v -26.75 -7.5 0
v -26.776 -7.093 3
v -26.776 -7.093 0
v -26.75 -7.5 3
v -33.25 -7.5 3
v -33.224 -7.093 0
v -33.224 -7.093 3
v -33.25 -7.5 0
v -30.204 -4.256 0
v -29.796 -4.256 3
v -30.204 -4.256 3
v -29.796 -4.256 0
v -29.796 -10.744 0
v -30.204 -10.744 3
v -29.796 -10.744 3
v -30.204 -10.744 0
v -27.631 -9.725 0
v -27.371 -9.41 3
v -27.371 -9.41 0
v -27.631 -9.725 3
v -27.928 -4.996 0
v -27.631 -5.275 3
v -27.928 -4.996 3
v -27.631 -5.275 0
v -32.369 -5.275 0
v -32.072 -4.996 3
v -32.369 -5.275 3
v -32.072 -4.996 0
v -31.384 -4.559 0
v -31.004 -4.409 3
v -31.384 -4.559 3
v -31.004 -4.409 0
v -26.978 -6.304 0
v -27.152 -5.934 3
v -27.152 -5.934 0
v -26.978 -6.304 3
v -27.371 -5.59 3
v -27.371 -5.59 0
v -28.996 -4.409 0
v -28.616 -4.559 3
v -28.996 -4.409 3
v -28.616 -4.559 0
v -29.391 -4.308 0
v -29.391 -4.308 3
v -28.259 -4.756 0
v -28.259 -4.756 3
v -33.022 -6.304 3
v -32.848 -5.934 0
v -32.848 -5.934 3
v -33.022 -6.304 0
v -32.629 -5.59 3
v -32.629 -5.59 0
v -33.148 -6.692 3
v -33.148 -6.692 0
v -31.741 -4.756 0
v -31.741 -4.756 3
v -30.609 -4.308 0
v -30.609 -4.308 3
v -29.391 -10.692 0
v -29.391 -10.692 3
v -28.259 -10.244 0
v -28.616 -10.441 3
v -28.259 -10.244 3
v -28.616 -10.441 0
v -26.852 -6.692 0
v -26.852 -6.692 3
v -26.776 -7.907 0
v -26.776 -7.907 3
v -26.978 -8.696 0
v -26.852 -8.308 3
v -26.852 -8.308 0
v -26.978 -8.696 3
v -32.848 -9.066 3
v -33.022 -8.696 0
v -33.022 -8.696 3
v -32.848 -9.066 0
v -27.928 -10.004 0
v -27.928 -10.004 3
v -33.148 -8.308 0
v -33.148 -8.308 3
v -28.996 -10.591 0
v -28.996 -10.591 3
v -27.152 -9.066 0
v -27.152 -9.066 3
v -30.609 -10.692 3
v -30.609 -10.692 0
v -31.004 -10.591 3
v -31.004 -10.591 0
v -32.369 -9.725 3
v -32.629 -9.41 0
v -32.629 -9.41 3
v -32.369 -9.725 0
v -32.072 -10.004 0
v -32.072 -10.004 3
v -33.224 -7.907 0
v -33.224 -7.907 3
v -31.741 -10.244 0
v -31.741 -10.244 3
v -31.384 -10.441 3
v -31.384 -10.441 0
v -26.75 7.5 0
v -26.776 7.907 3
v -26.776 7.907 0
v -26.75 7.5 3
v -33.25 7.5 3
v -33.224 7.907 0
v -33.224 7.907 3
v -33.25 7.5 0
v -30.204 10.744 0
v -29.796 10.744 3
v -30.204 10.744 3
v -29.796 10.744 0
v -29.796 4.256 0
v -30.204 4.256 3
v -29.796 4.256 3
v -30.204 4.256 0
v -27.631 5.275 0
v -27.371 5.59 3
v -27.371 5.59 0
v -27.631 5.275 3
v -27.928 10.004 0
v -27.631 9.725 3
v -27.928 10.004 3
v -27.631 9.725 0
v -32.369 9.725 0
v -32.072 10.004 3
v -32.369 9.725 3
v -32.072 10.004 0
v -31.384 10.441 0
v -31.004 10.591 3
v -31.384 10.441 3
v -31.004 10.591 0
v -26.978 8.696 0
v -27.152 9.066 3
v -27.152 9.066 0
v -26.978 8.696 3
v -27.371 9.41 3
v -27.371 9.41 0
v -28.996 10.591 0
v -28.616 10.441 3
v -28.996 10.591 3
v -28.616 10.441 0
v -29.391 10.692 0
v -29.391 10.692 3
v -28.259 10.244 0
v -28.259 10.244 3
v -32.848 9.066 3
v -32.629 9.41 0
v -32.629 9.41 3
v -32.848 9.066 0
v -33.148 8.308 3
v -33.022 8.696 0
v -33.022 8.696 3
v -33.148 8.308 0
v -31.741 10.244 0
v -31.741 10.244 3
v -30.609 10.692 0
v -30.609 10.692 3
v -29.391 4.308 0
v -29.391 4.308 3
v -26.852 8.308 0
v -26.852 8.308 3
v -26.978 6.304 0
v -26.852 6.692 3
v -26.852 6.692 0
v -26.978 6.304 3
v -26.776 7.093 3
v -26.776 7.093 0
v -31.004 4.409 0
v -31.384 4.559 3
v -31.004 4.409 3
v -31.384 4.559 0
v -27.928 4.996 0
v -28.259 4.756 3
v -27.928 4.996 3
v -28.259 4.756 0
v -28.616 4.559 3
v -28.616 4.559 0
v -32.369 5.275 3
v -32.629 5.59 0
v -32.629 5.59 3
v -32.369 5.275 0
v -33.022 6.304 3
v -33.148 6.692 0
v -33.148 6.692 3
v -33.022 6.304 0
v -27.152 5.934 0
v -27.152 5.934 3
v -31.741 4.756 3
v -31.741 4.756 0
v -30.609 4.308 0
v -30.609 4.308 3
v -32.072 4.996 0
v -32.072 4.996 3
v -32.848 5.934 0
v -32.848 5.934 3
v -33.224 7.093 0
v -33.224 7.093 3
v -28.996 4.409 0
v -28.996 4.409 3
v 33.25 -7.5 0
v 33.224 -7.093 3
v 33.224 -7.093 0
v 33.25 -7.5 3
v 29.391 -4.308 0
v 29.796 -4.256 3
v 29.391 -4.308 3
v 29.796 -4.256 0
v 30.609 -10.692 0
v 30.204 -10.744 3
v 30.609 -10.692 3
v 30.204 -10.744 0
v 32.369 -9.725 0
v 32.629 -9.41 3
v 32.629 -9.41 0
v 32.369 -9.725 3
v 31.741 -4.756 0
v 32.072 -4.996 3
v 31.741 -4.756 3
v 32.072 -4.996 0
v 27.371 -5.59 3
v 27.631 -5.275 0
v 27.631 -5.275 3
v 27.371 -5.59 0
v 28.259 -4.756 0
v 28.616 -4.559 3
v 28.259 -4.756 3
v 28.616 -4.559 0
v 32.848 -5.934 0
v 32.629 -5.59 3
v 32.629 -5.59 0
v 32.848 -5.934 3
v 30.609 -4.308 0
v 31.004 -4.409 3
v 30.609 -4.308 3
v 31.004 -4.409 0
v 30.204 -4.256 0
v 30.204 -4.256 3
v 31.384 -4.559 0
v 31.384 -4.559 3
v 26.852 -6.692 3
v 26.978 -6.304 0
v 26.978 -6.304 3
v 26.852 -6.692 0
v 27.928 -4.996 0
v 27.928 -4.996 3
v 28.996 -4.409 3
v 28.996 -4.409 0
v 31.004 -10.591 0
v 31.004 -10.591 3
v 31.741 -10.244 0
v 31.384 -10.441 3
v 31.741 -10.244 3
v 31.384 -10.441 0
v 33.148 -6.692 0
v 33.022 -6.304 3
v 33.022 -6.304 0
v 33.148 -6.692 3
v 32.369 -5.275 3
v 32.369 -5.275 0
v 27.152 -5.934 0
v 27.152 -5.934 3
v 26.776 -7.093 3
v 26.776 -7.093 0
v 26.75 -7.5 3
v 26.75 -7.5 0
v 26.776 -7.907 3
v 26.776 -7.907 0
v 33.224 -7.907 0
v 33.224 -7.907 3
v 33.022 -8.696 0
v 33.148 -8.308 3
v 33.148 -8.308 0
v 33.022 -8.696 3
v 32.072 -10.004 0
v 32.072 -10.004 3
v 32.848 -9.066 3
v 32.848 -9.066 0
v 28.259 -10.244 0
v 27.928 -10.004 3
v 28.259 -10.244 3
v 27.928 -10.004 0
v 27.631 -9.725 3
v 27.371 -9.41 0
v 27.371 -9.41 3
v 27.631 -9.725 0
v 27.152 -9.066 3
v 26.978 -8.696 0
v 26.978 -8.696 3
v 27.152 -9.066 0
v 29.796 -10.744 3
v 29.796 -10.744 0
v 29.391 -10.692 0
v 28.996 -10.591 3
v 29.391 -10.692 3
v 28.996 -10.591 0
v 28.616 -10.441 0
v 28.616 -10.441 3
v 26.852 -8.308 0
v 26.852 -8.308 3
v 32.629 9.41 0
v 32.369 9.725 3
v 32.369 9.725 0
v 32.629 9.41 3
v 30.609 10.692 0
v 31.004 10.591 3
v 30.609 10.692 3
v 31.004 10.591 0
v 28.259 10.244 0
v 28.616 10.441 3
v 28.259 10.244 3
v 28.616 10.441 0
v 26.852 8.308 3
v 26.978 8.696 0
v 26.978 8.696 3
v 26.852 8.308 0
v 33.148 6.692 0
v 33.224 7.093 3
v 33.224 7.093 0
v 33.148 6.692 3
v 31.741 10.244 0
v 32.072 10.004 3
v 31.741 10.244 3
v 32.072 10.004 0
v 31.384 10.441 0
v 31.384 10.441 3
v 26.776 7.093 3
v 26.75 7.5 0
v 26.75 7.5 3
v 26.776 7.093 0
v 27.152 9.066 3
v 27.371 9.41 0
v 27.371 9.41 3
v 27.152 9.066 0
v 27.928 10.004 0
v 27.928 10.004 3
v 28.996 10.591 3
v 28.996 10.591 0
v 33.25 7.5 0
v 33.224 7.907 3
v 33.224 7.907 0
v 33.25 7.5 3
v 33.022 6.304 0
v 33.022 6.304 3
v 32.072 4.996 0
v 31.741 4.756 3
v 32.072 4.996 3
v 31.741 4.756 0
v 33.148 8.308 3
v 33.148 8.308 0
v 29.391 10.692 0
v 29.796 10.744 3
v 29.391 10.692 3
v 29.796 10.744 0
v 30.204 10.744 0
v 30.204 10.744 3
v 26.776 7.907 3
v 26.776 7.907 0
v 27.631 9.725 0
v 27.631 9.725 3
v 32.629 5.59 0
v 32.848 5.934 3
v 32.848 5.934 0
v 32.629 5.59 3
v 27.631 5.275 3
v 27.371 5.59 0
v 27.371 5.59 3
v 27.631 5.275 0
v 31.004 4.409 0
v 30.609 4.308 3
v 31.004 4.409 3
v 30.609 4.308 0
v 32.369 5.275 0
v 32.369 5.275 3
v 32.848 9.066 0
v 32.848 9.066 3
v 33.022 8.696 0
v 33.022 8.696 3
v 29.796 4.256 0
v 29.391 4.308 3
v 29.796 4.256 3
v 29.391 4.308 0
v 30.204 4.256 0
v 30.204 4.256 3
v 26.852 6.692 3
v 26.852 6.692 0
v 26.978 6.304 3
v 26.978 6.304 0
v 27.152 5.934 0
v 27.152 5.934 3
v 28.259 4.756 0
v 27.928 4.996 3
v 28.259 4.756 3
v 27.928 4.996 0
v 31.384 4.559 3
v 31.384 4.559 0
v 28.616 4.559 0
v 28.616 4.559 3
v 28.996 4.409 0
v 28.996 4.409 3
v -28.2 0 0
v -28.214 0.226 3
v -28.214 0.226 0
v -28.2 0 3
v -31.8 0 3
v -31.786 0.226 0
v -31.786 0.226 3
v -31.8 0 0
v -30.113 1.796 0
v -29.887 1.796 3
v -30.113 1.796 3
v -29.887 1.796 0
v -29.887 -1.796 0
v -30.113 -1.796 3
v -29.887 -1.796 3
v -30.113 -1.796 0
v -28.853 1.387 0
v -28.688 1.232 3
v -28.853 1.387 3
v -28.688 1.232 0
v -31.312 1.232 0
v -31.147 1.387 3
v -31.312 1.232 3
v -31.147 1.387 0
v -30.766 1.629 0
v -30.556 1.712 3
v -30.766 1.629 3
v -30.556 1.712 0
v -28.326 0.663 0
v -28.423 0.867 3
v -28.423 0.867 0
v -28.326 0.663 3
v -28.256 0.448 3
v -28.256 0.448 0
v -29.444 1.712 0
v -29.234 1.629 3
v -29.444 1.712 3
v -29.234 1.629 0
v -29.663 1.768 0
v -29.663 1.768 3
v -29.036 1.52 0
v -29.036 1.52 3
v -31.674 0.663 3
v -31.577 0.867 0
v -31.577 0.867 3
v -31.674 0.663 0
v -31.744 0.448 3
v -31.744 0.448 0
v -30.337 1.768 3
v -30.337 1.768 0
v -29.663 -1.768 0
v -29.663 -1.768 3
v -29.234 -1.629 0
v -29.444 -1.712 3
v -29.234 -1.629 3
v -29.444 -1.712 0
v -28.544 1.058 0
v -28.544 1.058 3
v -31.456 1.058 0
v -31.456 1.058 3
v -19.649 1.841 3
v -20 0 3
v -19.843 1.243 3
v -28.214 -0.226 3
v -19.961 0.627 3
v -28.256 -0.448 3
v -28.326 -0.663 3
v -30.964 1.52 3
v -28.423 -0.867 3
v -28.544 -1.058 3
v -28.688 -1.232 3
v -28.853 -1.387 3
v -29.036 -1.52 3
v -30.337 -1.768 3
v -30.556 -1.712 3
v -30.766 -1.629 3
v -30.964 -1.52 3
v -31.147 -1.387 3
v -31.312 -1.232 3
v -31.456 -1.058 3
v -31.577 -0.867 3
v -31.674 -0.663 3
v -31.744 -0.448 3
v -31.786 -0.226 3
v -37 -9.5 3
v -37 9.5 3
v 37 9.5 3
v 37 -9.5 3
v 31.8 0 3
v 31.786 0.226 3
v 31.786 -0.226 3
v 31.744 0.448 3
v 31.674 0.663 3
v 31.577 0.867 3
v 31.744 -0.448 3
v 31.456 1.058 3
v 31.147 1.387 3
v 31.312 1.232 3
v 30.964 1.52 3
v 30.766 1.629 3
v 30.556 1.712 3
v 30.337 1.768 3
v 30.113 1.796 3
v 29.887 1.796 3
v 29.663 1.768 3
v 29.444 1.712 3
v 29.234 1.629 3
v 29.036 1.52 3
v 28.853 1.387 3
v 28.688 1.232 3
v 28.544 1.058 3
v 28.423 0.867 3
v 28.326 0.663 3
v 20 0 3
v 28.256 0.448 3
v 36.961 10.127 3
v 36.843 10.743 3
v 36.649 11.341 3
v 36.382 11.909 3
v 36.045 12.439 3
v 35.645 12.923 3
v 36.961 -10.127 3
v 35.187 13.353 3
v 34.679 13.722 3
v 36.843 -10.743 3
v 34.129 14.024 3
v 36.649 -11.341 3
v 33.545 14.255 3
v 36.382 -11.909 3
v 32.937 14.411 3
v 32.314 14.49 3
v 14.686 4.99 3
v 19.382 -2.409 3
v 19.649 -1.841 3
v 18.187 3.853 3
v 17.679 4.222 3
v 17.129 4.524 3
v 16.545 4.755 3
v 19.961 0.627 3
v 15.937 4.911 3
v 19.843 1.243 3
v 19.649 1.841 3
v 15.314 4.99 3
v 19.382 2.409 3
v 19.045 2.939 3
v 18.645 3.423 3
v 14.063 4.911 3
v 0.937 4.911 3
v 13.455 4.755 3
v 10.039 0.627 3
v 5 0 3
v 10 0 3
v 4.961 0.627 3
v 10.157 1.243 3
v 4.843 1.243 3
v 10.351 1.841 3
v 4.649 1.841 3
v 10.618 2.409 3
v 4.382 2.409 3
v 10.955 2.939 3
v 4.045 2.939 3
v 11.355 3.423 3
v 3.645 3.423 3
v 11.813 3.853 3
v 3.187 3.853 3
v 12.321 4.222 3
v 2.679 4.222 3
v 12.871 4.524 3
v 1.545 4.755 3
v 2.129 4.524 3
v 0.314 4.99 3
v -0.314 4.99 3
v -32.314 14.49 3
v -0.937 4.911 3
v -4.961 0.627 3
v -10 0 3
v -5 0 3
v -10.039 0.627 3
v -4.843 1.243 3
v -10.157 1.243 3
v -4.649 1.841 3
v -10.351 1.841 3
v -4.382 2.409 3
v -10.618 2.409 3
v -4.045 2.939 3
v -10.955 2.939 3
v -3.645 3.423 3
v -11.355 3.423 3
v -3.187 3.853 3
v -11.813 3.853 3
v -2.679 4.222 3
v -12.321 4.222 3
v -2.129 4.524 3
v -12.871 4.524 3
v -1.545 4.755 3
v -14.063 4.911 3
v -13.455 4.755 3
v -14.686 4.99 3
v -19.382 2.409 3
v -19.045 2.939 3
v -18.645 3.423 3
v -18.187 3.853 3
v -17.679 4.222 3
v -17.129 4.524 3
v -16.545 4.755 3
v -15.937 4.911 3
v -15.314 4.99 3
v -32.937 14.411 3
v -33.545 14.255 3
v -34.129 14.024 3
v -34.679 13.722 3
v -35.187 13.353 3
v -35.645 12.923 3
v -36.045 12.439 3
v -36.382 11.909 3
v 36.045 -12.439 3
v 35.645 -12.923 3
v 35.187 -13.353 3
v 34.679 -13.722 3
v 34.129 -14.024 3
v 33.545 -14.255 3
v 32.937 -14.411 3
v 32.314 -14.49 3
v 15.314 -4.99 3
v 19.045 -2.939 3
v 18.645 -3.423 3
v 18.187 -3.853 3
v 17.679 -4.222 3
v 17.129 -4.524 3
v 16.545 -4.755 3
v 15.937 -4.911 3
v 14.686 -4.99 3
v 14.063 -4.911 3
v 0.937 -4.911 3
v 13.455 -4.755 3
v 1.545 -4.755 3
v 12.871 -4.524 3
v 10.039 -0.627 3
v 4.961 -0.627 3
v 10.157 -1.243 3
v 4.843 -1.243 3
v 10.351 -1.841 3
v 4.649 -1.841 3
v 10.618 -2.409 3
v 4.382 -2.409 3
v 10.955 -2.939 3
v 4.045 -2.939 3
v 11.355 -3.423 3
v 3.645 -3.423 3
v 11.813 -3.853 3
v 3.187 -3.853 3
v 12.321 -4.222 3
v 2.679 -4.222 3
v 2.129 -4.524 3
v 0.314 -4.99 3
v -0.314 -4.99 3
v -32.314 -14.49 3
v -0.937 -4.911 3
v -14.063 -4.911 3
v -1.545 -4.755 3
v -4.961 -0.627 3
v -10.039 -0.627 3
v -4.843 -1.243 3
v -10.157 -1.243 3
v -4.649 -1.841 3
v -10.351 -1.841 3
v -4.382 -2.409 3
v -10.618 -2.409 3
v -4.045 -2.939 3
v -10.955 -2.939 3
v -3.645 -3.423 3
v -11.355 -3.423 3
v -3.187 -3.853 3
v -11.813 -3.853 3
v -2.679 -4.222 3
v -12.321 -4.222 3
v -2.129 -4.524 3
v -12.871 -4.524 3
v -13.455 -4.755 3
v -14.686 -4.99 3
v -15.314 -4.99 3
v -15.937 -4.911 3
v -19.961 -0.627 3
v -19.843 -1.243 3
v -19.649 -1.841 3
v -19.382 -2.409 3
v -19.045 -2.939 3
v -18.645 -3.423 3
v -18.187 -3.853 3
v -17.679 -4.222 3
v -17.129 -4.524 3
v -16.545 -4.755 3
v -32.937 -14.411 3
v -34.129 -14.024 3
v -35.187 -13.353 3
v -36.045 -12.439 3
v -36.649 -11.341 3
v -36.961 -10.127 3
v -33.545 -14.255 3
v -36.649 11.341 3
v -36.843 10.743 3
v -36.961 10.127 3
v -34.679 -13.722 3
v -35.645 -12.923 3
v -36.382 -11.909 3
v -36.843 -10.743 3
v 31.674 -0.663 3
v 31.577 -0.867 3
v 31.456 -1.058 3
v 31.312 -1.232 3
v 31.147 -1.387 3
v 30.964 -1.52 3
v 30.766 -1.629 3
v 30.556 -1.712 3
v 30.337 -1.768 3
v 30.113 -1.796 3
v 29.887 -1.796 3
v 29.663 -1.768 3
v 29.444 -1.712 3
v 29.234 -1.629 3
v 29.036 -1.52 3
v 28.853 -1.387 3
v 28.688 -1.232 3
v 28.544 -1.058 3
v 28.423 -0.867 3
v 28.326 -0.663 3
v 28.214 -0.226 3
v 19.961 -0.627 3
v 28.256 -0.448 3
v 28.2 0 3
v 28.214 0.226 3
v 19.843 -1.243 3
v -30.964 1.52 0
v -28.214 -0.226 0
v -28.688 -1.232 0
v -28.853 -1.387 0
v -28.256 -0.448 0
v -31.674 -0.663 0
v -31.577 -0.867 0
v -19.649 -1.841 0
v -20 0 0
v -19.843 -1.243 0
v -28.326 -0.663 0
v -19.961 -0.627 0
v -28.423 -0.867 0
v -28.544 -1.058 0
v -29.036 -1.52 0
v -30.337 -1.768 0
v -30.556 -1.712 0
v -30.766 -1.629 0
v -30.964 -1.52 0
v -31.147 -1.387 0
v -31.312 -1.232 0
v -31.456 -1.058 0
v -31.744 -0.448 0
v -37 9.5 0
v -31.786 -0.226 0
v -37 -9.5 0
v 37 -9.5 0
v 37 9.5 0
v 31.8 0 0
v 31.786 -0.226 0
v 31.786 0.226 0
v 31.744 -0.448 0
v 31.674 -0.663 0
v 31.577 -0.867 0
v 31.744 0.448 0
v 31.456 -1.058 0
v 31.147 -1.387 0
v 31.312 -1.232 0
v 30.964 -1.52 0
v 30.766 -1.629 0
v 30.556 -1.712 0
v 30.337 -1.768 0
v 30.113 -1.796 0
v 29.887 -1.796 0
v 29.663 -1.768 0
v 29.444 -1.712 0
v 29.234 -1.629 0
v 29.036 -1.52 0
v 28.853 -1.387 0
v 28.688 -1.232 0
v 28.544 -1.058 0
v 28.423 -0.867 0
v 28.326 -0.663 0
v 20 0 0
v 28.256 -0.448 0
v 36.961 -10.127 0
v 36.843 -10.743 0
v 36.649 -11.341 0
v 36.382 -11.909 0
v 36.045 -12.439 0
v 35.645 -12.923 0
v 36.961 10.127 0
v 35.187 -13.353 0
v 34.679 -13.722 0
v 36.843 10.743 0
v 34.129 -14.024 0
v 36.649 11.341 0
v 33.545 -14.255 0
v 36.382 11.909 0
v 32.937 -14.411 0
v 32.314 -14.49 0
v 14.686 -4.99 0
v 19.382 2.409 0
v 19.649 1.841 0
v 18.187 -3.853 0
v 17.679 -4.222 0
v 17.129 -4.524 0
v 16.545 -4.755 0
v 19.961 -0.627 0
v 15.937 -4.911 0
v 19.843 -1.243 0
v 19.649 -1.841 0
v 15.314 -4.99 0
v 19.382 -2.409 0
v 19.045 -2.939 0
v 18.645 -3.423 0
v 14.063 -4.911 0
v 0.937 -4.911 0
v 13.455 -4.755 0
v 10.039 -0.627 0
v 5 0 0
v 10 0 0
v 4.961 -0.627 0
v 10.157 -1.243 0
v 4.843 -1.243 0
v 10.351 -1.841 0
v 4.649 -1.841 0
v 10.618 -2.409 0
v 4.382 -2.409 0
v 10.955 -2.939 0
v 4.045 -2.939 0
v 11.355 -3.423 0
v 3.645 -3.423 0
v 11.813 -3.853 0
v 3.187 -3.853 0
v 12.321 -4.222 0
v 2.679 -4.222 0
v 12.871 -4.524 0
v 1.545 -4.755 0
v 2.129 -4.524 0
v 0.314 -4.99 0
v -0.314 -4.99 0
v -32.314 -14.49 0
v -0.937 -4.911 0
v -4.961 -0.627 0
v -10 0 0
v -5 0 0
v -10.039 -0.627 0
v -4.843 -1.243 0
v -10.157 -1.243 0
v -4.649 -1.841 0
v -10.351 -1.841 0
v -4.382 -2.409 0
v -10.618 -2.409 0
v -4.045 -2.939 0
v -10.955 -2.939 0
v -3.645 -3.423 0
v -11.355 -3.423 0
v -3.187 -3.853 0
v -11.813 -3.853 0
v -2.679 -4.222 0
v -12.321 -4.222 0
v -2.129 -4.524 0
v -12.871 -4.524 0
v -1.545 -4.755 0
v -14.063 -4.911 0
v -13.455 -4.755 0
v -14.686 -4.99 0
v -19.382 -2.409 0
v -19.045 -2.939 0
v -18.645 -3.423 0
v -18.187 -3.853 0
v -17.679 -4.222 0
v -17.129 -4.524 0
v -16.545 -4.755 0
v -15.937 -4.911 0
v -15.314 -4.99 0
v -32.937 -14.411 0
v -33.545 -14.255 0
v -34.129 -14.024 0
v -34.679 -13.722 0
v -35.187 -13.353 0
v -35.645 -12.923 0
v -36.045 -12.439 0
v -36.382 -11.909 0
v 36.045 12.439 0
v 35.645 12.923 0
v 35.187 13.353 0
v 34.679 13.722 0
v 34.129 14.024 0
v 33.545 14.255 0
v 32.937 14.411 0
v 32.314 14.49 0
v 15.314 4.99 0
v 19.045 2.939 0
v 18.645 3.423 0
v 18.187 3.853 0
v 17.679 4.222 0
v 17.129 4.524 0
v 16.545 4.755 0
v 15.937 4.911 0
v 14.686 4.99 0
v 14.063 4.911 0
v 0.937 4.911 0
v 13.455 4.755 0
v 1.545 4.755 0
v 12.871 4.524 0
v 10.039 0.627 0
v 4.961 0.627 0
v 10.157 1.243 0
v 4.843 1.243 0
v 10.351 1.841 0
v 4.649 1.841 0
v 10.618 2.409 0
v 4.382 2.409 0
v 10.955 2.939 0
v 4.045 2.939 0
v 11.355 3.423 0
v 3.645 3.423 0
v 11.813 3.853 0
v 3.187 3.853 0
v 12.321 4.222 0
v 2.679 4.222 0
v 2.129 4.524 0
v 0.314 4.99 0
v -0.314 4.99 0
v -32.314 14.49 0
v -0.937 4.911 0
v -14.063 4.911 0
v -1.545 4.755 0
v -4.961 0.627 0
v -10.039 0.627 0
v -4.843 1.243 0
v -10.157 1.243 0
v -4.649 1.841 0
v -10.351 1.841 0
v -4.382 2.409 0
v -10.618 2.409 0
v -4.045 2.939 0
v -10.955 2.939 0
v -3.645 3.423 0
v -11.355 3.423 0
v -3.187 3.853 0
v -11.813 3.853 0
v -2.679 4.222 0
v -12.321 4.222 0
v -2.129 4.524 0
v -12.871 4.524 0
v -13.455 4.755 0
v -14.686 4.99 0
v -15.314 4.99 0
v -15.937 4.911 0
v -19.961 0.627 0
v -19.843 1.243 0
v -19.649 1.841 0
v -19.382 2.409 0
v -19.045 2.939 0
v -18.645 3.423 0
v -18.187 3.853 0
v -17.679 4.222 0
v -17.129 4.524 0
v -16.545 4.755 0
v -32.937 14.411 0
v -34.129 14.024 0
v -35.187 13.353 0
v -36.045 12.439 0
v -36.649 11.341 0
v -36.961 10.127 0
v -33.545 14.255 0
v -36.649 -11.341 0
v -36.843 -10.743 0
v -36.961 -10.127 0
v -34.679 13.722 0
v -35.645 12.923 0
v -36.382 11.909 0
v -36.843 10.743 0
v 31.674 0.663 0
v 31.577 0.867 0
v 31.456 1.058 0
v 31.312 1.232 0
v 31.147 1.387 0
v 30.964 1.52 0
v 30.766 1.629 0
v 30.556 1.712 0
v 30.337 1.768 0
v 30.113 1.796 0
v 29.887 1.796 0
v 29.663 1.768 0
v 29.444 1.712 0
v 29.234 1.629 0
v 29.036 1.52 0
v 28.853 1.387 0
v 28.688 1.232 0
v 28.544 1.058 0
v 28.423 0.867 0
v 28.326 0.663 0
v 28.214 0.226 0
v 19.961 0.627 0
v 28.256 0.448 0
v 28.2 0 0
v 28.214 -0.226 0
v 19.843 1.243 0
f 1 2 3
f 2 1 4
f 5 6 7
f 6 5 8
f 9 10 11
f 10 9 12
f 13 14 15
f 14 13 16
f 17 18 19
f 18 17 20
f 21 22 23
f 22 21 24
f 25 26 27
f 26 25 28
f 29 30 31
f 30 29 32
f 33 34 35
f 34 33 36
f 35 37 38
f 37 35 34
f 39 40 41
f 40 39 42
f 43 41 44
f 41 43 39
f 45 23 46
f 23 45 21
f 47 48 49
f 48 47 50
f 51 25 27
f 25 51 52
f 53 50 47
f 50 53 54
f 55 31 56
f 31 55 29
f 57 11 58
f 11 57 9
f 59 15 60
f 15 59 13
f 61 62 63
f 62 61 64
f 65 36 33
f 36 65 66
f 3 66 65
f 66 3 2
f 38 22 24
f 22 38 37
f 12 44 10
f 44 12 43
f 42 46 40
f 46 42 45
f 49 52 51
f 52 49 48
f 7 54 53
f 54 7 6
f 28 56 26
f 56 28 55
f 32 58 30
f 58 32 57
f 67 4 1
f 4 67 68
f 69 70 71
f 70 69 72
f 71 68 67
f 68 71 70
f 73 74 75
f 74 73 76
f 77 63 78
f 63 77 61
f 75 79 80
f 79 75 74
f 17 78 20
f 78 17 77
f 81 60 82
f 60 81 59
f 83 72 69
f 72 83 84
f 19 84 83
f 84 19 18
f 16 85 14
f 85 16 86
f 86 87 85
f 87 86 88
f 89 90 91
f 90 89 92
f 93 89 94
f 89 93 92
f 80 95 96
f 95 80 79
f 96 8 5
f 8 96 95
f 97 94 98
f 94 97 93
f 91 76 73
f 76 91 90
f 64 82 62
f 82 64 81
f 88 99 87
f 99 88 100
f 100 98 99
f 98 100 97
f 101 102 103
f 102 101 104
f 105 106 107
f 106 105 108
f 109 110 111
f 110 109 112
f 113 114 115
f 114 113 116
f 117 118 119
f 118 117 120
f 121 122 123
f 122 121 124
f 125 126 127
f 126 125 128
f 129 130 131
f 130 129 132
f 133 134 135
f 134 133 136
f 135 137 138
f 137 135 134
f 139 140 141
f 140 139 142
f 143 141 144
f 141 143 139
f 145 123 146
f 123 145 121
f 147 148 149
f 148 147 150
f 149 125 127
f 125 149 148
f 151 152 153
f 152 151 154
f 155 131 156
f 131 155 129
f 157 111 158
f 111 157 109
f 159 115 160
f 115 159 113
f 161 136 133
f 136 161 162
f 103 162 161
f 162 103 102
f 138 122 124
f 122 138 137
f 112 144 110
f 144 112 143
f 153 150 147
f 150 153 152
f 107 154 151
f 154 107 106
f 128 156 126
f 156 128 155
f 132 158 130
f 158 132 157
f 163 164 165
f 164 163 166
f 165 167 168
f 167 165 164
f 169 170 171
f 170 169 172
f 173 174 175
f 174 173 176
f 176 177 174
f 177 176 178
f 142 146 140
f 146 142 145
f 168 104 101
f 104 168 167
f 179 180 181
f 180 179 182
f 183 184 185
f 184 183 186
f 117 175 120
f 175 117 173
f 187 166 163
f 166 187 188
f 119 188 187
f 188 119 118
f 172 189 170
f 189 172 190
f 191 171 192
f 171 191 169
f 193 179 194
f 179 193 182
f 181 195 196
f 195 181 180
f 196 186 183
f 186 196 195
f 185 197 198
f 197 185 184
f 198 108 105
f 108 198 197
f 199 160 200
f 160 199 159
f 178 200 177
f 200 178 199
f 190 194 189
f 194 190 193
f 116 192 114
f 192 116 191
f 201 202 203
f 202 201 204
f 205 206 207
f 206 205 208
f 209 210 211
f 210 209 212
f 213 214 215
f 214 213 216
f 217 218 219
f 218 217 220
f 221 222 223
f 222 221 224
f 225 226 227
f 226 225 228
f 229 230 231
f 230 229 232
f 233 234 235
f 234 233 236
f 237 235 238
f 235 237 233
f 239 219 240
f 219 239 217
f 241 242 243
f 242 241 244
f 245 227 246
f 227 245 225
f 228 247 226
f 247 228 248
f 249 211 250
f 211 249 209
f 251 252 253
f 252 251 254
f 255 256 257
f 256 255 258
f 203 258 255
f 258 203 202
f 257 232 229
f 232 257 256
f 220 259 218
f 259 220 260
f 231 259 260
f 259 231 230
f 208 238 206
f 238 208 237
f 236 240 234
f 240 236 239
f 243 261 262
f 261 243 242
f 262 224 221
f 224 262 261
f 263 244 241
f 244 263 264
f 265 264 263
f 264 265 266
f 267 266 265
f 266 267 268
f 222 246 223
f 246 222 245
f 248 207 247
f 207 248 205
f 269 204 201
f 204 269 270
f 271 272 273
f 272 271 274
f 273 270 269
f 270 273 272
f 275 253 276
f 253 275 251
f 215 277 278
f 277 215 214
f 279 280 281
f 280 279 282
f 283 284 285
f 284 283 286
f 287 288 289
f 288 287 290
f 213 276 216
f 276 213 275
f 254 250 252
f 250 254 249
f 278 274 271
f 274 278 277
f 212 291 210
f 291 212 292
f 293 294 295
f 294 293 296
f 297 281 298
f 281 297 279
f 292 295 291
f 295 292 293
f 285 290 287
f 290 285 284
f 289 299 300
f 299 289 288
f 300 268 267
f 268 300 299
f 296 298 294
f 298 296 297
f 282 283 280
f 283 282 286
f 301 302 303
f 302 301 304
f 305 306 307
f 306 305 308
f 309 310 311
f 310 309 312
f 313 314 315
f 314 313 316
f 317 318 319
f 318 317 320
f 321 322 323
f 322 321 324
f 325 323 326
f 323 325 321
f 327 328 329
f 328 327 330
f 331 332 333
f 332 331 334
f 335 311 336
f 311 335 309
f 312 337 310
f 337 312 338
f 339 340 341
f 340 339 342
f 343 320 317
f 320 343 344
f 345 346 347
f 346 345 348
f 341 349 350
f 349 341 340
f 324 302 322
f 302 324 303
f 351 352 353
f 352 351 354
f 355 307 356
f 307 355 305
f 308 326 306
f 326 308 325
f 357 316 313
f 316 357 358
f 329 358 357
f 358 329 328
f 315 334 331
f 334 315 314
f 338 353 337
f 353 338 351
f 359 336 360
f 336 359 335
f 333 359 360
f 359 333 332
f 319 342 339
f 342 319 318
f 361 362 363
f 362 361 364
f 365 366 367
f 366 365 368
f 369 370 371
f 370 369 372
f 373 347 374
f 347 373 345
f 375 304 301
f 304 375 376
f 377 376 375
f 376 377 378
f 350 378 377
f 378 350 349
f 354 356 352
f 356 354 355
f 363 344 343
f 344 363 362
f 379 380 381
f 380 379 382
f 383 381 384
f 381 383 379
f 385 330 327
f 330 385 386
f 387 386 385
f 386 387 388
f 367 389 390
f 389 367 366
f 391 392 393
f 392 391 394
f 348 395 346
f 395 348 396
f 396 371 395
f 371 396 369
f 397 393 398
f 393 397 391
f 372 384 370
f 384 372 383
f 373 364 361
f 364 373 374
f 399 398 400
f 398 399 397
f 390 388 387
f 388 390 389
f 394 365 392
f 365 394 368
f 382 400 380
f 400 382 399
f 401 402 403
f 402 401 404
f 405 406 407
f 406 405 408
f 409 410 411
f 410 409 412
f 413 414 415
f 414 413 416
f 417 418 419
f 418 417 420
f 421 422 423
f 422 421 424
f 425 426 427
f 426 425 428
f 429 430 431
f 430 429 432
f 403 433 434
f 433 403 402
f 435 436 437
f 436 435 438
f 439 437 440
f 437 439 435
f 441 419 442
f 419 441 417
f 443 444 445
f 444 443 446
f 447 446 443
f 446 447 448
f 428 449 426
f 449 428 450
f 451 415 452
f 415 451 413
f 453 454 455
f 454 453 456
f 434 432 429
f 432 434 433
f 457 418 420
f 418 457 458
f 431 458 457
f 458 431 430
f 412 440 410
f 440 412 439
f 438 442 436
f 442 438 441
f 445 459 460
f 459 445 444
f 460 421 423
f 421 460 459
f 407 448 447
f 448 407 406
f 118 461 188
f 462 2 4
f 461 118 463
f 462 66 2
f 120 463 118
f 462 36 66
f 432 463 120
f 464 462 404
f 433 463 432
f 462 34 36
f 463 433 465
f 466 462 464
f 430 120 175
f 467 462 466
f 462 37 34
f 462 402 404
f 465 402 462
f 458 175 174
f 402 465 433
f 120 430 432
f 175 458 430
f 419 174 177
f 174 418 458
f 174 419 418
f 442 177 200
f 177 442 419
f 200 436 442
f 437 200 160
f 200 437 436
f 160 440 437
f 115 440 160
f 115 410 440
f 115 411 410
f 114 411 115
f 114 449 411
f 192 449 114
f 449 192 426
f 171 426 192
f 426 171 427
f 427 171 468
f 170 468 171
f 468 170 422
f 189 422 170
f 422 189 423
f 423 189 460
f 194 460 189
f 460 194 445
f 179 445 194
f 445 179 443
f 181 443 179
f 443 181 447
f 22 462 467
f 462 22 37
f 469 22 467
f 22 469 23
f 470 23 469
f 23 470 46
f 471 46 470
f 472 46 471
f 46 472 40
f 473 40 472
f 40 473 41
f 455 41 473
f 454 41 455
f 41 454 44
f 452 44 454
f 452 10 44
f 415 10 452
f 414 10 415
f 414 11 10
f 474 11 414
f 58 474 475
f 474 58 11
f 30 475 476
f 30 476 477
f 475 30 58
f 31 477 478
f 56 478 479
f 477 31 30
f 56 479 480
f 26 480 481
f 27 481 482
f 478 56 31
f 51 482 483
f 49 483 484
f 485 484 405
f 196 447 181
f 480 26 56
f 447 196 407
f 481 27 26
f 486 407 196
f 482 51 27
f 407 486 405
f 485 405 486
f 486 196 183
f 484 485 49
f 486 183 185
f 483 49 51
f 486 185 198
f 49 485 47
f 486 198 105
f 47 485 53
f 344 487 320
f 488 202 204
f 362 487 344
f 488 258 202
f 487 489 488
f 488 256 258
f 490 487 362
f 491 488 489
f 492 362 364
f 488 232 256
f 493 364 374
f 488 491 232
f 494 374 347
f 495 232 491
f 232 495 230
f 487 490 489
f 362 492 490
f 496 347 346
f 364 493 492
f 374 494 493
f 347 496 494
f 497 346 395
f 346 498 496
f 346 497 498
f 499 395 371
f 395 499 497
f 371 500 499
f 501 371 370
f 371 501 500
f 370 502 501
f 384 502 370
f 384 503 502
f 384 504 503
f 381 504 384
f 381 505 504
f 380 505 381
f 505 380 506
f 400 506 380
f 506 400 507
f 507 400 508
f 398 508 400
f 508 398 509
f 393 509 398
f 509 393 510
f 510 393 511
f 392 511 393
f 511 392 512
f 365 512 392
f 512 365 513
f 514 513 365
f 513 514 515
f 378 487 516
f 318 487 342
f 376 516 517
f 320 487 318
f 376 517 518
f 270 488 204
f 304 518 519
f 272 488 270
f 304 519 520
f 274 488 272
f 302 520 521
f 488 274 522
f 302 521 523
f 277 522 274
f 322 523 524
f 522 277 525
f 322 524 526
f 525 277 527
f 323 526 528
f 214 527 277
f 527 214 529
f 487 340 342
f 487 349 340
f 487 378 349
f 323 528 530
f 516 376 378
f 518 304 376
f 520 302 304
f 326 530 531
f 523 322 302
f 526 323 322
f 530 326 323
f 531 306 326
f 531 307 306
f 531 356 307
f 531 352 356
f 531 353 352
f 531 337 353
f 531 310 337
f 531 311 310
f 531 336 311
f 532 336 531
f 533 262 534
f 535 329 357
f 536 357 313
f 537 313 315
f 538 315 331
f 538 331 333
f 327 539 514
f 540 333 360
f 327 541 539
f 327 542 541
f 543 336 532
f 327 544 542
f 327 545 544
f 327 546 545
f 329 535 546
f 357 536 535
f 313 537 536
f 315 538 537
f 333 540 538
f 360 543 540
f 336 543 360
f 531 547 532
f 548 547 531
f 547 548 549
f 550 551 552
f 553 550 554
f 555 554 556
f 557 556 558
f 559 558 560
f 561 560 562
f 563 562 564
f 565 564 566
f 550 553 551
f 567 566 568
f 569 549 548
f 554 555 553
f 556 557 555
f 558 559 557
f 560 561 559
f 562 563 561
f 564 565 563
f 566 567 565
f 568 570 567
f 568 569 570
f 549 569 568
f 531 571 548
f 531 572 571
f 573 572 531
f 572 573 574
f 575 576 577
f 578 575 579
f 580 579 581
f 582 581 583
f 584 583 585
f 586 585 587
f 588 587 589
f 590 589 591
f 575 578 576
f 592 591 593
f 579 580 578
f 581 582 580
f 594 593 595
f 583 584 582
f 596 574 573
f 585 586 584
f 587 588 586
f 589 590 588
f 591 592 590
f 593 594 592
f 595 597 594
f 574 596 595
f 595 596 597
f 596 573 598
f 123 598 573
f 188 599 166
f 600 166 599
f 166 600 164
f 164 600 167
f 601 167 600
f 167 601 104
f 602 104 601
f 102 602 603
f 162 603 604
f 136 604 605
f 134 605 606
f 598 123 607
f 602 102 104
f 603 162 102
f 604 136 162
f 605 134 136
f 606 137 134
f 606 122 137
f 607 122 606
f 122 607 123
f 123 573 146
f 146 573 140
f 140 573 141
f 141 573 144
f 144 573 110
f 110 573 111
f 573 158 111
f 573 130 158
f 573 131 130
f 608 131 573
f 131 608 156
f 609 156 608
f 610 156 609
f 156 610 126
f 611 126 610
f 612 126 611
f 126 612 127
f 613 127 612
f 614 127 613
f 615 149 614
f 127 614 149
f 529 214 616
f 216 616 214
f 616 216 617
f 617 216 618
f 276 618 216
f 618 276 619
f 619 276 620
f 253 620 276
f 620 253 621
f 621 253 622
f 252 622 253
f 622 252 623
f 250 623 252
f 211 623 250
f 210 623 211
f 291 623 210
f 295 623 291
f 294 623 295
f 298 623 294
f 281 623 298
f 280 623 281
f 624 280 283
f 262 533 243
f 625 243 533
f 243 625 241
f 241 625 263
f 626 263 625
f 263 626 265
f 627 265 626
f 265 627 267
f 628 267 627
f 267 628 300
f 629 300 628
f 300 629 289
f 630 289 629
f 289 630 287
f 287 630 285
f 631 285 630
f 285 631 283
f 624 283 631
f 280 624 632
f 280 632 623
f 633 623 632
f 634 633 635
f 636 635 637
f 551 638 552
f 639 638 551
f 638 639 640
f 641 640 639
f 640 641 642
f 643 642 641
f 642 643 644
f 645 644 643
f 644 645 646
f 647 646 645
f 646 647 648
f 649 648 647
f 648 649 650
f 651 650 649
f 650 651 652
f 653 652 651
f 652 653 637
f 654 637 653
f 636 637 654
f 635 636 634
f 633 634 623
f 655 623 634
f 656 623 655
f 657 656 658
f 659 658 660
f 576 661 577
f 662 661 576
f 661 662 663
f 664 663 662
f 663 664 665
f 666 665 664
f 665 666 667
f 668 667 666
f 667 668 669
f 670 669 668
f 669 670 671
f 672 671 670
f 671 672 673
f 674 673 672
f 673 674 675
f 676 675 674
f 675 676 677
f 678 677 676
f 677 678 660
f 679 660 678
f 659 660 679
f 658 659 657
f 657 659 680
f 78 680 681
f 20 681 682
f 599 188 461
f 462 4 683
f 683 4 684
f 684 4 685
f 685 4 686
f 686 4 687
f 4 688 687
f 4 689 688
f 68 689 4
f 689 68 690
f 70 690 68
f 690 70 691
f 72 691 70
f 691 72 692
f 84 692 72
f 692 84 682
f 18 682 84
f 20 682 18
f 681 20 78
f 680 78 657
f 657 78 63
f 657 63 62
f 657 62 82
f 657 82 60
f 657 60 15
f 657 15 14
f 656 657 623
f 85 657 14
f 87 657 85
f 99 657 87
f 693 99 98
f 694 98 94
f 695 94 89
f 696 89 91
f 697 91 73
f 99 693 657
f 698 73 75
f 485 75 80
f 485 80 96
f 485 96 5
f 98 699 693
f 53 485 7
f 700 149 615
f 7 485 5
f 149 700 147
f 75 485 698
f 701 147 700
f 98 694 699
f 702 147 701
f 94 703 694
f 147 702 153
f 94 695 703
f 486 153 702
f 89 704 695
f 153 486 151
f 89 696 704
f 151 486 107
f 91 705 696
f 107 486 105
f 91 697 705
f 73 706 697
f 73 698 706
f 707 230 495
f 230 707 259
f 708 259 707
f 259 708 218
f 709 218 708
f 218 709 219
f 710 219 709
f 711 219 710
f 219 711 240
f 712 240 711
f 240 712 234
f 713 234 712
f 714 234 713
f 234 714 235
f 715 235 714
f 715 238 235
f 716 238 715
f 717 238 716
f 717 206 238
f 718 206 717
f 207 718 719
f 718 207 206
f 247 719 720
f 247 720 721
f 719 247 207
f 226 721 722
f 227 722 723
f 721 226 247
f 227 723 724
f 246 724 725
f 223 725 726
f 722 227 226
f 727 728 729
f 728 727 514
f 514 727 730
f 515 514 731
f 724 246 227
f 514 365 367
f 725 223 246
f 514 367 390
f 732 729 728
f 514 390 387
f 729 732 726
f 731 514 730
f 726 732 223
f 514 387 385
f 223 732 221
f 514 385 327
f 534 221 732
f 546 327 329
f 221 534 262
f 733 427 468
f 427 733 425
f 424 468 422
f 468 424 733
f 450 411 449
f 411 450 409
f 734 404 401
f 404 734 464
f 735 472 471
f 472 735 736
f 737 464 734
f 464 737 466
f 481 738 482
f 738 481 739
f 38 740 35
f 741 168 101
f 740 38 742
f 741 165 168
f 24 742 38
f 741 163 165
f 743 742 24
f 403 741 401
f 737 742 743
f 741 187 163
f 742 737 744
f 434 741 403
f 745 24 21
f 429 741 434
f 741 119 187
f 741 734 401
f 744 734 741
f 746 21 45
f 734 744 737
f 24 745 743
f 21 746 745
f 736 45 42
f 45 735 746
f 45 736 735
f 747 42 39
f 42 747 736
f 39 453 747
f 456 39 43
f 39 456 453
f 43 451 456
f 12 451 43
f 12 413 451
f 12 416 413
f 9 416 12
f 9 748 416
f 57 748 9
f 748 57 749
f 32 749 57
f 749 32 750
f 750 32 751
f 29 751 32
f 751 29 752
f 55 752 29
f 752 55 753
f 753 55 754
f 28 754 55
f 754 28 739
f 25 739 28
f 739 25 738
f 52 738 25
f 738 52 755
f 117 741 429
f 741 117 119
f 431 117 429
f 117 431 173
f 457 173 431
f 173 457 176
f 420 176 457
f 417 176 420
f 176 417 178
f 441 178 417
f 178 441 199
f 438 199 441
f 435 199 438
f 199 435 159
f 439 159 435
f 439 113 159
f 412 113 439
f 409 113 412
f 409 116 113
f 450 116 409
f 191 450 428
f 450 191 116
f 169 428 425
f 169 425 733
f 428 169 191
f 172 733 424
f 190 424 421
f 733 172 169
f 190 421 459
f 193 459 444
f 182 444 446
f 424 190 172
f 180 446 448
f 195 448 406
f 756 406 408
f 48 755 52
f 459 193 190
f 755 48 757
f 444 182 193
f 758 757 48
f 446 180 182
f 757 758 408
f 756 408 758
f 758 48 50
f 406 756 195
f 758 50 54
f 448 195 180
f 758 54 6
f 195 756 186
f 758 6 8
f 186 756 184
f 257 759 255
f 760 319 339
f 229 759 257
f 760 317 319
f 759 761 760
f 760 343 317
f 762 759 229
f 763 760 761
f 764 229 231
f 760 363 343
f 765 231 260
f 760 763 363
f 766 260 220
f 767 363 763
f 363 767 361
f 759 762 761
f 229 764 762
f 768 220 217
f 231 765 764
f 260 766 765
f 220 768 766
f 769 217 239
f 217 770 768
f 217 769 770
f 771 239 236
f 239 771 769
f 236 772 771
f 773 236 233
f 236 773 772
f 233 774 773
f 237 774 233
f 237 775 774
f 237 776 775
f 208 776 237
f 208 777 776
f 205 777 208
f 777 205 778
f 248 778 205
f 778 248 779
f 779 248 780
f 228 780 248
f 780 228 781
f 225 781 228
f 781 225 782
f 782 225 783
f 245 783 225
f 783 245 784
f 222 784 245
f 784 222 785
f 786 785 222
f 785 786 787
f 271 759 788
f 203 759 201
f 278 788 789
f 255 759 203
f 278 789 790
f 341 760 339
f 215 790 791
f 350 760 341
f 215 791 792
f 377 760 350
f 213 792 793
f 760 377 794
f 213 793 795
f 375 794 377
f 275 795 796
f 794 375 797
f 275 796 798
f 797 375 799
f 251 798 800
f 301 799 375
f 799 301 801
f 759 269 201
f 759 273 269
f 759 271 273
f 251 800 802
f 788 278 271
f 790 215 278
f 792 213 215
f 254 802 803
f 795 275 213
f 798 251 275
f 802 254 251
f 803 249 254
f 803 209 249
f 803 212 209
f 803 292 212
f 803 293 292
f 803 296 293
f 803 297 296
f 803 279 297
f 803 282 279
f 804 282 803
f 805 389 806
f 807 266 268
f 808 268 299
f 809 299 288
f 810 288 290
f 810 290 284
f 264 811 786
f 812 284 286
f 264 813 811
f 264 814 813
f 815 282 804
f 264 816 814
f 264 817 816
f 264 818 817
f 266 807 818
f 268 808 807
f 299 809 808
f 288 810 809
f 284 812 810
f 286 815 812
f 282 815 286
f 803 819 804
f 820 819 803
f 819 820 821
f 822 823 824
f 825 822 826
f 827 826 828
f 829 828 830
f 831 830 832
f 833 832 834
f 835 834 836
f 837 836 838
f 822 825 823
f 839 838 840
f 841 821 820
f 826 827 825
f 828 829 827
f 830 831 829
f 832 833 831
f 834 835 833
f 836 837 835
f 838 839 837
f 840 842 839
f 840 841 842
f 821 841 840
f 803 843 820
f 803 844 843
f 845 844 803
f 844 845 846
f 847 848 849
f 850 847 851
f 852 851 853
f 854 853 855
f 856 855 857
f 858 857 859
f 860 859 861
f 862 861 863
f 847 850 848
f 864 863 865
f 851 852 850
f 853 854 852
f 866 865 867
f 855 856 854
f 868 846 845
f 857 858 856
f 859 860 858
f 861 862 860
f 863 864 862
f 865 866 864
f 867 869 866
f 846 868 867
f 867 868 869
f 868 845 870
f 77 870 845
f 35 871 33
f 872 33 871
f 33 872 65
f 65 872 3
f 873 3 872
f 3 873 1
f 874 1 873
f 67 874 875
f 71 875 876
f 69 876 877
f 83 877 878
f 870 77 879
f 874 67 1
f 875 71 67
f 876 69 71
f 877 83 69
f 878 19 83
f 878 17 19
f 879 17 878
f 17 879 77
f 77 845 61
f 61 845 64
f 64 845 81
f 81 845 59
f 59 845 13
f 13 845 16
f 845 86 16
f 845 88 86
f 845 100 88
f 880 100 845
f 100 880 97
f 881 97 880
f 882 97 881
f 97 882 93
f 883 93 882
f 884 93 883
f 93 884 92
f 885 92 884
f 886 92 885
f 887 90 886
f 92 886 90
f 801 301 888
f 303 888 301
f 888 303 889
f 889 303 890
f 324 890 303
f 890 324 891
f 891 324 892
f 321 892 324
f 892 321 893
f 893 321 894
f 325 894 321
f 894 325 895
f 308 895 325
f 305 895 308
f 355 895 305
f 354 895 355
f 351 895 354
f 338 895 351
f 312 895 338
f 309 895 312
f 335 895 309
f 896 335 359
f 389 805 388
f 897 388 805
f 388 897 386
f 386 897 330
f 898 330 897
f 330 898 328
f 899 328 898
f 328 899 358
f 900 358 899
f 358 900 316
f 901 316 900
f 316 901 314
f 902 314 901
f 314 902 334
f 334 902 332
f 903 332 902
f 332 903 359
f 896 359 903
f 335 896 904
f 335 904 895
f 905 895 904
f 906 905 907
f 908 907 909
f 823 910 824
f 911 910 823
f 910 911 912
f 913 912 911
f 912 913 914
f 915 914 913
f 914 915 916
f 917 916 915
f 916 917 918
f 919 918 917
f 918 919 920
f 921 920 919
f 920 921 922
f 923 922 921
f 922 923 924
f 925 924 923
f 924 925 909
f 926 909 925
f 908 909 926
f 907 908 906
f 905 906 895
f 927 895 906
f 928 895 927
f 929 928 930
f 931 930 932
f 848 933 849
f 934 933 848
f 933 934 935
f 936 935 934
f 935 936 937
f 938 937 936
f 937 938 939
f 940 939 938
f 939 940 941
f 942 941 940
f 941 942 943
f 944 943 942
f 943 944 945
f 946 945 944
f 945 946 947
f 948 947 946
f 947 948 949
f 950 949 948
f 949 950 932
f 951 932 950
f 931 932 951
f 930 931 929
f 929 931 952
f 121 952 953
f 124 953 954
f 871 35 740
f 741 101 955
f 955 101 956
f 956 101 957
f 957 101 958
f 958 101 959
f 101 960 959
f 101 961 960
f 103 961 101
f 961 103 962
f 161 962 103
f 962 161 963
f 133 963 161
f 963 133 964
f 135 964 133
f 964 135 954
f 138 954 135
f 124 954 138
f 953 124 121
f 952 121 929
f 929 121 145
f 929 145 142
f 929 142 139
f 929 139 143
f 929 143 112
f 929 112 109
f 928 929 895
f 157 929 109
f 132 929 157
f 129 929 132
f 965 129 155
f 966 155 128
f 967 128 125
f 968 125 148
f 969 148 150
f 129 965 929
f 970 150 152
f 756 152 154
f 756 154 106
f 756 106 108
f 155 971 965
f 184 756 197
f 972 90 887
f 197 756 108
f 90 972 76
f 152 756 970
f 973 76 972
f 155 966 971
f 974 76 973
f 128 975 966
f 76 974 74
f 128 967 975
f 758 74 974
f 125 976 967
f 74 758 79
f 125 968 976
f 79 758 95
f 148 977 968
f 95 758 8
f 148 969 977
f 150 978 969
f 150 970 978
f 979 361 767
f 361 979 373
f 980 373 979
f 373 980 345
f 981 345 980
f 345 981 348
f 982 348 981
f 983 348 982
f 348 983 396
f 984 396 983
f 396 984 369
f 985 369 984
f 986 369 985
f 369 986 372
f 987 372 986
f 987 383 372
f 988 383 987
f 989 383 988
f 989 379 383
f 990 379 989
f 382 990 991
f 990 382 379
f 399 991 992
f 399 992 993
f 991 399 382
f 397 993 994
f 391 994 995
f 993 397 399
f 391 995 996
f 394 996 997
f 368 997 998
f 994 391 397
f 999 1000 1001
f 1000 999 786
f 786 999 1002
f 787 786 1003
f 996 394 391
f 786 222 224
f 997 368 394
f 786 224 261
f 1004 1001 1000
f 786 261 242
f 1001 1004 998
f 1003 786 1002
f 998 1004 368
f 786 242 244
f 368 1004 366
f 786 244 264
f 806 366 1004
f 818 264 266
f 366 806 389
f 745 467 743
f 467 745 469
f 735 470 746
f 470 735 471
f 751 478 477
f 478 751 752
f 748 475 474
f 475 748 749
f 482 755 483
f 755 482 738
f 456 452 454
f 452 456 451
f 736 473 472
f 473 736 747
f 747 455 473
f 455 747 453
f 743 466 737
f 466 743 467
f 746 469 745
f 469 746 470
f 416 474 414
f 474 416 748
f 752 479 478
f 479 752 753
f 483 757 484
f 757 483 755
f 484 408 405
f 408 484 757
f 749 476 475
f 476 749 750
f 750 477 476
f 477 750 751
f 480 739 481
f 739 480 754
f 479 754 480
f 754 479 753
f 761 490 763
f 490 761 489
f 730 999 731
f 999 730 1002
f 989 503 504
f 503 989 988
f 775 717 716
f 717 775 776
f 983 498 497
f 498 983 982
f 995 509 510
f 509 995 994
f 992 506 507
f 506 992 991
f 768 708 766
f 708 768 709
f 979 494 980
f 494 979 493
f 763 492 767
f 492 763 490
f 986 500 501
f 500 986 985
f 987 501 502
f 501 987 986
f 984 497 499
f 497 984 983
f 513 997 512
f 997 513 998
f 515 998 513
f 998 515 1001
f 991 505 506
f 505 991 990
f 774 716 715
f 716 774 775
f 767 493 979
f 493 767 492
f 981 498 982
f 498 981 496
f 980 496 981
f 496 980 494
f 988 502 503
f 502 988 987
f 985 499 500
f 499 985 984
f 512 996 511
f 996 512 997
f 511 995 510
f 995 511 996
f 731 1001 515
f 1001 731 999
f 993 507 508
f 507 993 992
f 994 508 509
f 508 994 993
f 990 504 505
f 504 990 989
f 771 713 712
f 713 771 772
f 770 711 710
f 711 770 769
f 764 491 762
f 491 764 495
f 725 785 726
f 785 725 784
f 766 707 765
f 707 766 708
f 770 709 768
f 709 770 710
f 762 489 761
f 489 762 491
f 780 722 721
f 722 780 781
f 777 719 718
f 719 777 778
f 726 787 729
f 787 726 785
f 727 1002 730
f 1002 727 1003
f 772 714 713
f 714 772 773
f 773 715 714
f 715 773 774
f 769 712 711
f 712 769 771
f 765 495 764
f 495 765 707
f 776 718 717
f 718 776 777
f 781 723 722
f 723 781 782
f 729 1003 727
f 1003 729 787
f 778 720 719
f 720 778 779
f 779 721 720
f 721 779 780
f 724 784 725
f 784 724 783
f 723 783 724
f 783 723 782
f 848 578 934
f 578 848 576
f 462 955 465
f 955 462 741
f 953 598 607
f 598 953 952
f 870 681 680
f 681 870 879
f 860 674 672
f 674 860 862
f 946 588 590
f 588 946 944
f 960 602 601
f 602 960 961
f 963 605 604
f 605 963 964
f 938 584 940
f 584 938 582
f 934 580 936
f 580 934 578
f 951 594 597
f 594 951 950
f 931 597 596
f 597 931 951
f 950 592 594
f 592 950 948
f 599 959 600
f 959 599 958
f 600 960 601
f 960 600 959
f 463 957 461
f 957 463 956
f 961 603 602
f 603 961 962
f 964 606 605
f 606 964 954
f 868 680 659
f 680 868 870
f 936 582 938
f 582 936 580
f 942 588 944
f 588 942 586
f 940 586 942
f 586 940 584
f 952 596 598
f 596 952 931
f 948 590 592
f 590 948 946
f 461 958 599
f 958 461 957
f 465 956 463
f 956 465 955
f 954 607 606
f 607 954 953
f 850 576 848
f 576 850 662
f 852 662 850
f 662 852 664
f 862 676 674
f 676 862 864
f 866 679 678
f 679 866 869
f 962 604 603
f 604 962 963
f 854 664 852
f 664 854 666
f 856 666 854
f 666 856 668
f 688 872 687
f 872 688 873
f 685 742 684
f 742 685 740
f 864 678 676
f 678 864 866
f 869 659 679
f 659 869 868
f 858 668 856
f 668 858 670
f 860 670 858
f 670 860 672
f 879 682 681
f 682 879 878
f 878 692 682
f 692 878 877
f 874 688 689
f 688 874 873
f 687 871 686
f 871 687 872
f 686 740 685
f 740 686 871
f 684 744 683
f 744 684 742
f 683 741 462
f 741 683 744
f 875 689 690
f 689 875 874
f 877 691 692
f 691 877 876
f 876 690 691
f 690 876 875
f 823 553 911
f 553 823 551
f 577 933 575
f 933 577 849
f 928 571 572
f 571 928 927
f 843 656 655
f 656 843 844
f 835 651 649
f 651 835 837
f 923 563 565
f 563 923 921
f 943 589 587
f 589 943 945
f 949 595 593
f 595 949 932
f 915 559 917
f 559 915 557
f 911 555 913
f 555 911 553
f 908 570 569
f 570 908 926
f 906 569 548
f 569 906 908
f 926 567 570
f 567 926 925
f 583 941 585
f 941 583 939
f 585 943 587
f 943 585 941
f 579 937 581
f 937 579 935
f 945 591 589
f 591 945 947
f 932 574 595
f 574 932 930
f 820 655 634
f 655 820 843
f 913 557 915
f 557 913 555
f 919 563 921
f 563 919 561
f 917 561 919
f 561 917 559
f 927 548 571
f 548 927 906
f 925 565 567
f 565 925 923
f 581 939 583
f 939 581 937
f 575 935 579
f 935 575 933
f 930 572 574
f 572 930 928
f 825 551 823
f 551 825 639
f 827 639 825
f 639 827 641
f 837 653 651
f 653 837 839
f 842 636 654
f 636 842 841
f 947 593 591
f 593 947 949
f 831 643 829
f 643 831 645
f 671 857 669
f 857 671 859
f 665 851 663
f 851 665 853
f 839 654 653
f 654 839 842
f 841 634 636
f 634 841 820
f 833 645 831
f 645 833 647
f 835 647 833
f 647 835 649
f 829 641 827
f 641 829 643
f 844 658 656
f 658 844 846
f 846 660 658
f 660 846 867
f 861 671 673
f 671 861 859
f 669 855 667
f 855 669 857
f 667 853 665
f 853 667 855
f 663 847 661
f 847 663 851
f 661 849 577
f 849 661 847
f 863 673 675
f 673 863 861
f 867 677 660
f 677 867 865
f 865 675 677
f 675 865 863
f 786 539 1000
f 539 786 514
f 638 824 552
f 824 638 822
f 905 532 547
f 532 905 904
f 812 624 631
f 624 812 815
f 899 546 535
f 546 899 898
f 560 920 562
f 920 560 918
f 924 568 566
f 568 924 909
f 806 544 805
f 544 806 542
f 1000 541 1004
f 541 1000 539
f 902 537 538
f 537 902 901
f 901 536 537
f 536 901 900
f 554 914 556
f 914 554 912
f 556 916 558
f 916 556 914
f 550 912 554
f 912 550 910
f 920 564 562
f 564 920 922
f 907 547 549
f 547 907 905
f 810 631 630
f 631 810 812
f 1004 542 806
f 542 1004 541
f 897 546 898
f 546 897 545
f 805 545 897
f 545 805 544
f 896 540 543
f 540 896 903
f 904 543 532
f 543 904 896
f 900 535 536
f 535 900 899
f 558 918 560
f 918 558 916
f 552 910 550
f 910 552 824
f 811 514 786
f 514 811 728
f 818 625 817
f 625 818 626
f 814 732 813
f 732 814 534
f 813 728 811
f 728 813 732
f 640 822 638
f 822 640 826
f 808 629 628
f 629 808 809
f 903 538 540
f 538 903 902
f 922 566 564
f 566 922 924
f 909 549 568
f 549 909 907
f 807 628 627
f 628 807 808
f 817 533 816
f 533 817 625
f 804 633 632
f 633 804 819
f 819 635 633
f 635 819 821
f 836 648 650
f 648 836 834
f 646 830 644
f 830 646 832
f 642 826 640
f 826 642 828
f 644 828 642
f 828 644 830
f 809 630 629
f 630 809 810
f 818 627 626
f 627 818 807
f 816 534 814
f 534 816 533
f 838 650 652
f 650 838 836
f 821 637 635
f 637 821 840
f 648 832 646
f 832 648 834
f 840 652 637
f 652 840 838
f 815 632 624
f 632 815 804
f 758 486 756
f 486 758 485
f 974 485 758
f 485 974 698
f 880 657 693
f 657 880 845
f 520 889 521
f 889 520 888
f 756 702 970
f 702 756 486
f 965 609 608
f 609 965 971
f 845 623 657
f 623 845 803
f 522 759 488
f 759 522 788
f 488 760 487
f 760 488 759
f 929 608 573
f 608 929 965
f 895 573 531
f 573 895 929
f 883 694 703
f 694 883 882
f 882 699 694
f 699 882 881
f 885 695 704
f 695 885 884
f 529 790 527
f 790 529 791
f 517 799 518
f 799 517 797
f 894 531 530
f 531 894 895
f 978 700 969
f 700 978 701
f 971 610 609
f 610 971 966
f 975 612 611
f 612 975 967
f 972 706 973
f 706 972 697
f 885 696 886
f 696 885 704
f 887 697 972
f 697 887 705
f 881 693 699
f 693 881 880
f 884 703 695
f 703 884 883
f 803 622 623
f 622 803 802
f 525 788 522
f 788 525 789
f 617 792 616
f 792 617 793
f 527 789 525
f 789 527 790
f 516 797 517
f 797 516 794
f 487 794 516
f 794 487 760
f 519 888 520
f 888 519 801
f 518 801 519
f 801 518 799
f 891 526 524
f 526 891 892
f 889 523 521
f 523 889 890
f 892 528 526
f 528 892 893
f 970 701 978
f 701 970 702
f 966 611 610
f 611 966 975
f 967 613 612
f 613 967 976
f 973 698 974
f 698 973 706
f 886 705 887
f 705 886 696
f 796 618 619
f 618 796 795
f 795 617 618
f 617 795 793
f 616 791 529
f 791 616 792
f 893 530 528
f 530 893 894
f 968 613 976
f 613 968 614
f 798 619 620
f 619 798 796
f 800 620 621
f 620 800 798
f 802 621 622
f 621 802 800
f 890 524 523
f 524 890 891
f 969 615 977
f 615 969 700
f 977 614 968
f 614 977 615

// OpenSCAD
$fn = 50;


difference() {
	union() {
		hull() {
			translate(v = [-32.0000000000, 9.5000000000, 0]) {
				cylinder(h = 3, r = 5);
			}
			translate(v = [32.0000000000, 9.5000000000, 0]) {
				cylinder(h = 3, r = 5);
			}
			translate(v = [-32.0000000000, -9.5000000000, 0]) {
				cylinder(h = 3, r = 5);
			}
			translate(v = [32.0000000000, -9.5000000000, 0]) {
				cylinder(h = 3, r = 5);
			}
		}
	}
	union() {
		#translate(v = [-30.0000000000, -7.5000000000, 0]) {
			cylinder(h = 3, r = 3.2500000000);
		}
		#translate(v = [-30.0000000000, 7.5000000000, 0]) {
			cylinder(h = 3, r = 3.2500000000);
		}
		#translate(v = [30.0000000000, -7.5000000000, 0]) {
			cylinder(h = 3, r = 3.2500000000);
		}
		#translate(v = [30.0000000000, 7.5000000000, 0]) {
			cylinder(h = 3, r = 3.2500000000);
		}
		#translate(v = [-30.0000000000, -7.5000000000, -100.0000000000]) {
			cylinder(h = 200, r = 3.2500000000);
		}
		#translate(v = [-30.0000000000, 7.5000000000, -100.0000000000]) {
			cylinder(h = 200, r = 3.2500000000);
		}
		#translate(v = [30.0000000000, -7.5000000000, -100.0000000000]) {
			cylinder(h = 200, r = 3.2500000000);
		}
		#translate(v = [30.0000000000, 7.5000000000, -100.0000000000]) {
			cylinder(h = 200, r = 3.2500000000);
		}
		#translate(v = [-30.0000000000, -7.5000000000, 0]) {
			cylinder(h = 3, r = 1.8000000000);
		}
		#translate(v = [-30.0000000000, 0.0000000000, 0]) {
			cylinder(h = 3, r = 1.8000000000);
		}
		#translate(v = [-30.0000000000, 7.5000000000, 0]) {
			cylinder(h = 3, r = 1.8000000000);
		}
		#translate(v = [30.0000000000, -7.5000000000, 0]) {
			cylinder(h = 3, r = 1.8000000000);
		}
		#translate(v = [30.0000000000, 0.0000000000, 0]) {
			cylinder(h = 3, r = 1.8000000000);
		}
		#translate(v = [30.0000000000, 7.5000000000, 0]) {
			cylinder(h = 3, r = 1.8000000000);
		}
		#translate(v = [-30.0000000000, -7.5000000000, 0]) {
			cylinder(h = 3, r = 1.8000000000);
		}
		#translate(v = [-30.0000000000, 0.0000000000, 0]) {
			cylinder(h = 3, r = 1.8000000000);
		}
		#translate(v = [-30.0000000000, 7.5000000000, 0]) {
			cylinder(h = 3, r = 1.8000000000);
		}
		#translate(v = [30.0000000000, -7.5000000000, 0]) {
			cylinder(h = 3, r = 1.8000000000);
		}
		#translate(v = [30.0000000000, 0.0000000000, 0]) {
			cylinder(h = 3, r = 1.8000000000);
		}
		#translate(v = [30.0000000000, 7.5000000000, 0]) {
			cylinder(h = 3, r = 1.8000000000);
		}
		#translate(v = [-30.0000000000, -7.5000000000, 0]) {
			cylinder(h = 3, r = 1.8000000000);
		}
		#translate(v = [-30.0000000000, 0.0000000000, 0]) {
			cylinder(h = 3, r = 1.8000000000);
		}
		#translate(v = [-30.0000000000, 7.5000000000, 0]) {
			cylinder(h = 3, r = 1.8000000000);
		}
		#translate(v = [30.0000000000, -7.5000000000, 0]) {
			cylinder(h = 3, r = 1.8000000000);
		}
		#translate(v = [30.0000000000, 0.0000000000, 0]) {
			cylinder(h = 3, r = 1.8000000000);
		}
		#translate(v = [30.0000000000, 7.5000000000, 0]) {
			cylinder(h = 3, r = 1.8000000000);
		}
		#translate(v = [-15.0000000000, 0, 0]) {
			cylinder(h = 3, r = 5.0000000000);
		}
		#cylinder(h = 3, r = 5.0000000000);
		#translate(v = [15.0000000000, 0, 0]) {
			cylinder(h = 3, r = 5.0000000000);
		}
	}
}
